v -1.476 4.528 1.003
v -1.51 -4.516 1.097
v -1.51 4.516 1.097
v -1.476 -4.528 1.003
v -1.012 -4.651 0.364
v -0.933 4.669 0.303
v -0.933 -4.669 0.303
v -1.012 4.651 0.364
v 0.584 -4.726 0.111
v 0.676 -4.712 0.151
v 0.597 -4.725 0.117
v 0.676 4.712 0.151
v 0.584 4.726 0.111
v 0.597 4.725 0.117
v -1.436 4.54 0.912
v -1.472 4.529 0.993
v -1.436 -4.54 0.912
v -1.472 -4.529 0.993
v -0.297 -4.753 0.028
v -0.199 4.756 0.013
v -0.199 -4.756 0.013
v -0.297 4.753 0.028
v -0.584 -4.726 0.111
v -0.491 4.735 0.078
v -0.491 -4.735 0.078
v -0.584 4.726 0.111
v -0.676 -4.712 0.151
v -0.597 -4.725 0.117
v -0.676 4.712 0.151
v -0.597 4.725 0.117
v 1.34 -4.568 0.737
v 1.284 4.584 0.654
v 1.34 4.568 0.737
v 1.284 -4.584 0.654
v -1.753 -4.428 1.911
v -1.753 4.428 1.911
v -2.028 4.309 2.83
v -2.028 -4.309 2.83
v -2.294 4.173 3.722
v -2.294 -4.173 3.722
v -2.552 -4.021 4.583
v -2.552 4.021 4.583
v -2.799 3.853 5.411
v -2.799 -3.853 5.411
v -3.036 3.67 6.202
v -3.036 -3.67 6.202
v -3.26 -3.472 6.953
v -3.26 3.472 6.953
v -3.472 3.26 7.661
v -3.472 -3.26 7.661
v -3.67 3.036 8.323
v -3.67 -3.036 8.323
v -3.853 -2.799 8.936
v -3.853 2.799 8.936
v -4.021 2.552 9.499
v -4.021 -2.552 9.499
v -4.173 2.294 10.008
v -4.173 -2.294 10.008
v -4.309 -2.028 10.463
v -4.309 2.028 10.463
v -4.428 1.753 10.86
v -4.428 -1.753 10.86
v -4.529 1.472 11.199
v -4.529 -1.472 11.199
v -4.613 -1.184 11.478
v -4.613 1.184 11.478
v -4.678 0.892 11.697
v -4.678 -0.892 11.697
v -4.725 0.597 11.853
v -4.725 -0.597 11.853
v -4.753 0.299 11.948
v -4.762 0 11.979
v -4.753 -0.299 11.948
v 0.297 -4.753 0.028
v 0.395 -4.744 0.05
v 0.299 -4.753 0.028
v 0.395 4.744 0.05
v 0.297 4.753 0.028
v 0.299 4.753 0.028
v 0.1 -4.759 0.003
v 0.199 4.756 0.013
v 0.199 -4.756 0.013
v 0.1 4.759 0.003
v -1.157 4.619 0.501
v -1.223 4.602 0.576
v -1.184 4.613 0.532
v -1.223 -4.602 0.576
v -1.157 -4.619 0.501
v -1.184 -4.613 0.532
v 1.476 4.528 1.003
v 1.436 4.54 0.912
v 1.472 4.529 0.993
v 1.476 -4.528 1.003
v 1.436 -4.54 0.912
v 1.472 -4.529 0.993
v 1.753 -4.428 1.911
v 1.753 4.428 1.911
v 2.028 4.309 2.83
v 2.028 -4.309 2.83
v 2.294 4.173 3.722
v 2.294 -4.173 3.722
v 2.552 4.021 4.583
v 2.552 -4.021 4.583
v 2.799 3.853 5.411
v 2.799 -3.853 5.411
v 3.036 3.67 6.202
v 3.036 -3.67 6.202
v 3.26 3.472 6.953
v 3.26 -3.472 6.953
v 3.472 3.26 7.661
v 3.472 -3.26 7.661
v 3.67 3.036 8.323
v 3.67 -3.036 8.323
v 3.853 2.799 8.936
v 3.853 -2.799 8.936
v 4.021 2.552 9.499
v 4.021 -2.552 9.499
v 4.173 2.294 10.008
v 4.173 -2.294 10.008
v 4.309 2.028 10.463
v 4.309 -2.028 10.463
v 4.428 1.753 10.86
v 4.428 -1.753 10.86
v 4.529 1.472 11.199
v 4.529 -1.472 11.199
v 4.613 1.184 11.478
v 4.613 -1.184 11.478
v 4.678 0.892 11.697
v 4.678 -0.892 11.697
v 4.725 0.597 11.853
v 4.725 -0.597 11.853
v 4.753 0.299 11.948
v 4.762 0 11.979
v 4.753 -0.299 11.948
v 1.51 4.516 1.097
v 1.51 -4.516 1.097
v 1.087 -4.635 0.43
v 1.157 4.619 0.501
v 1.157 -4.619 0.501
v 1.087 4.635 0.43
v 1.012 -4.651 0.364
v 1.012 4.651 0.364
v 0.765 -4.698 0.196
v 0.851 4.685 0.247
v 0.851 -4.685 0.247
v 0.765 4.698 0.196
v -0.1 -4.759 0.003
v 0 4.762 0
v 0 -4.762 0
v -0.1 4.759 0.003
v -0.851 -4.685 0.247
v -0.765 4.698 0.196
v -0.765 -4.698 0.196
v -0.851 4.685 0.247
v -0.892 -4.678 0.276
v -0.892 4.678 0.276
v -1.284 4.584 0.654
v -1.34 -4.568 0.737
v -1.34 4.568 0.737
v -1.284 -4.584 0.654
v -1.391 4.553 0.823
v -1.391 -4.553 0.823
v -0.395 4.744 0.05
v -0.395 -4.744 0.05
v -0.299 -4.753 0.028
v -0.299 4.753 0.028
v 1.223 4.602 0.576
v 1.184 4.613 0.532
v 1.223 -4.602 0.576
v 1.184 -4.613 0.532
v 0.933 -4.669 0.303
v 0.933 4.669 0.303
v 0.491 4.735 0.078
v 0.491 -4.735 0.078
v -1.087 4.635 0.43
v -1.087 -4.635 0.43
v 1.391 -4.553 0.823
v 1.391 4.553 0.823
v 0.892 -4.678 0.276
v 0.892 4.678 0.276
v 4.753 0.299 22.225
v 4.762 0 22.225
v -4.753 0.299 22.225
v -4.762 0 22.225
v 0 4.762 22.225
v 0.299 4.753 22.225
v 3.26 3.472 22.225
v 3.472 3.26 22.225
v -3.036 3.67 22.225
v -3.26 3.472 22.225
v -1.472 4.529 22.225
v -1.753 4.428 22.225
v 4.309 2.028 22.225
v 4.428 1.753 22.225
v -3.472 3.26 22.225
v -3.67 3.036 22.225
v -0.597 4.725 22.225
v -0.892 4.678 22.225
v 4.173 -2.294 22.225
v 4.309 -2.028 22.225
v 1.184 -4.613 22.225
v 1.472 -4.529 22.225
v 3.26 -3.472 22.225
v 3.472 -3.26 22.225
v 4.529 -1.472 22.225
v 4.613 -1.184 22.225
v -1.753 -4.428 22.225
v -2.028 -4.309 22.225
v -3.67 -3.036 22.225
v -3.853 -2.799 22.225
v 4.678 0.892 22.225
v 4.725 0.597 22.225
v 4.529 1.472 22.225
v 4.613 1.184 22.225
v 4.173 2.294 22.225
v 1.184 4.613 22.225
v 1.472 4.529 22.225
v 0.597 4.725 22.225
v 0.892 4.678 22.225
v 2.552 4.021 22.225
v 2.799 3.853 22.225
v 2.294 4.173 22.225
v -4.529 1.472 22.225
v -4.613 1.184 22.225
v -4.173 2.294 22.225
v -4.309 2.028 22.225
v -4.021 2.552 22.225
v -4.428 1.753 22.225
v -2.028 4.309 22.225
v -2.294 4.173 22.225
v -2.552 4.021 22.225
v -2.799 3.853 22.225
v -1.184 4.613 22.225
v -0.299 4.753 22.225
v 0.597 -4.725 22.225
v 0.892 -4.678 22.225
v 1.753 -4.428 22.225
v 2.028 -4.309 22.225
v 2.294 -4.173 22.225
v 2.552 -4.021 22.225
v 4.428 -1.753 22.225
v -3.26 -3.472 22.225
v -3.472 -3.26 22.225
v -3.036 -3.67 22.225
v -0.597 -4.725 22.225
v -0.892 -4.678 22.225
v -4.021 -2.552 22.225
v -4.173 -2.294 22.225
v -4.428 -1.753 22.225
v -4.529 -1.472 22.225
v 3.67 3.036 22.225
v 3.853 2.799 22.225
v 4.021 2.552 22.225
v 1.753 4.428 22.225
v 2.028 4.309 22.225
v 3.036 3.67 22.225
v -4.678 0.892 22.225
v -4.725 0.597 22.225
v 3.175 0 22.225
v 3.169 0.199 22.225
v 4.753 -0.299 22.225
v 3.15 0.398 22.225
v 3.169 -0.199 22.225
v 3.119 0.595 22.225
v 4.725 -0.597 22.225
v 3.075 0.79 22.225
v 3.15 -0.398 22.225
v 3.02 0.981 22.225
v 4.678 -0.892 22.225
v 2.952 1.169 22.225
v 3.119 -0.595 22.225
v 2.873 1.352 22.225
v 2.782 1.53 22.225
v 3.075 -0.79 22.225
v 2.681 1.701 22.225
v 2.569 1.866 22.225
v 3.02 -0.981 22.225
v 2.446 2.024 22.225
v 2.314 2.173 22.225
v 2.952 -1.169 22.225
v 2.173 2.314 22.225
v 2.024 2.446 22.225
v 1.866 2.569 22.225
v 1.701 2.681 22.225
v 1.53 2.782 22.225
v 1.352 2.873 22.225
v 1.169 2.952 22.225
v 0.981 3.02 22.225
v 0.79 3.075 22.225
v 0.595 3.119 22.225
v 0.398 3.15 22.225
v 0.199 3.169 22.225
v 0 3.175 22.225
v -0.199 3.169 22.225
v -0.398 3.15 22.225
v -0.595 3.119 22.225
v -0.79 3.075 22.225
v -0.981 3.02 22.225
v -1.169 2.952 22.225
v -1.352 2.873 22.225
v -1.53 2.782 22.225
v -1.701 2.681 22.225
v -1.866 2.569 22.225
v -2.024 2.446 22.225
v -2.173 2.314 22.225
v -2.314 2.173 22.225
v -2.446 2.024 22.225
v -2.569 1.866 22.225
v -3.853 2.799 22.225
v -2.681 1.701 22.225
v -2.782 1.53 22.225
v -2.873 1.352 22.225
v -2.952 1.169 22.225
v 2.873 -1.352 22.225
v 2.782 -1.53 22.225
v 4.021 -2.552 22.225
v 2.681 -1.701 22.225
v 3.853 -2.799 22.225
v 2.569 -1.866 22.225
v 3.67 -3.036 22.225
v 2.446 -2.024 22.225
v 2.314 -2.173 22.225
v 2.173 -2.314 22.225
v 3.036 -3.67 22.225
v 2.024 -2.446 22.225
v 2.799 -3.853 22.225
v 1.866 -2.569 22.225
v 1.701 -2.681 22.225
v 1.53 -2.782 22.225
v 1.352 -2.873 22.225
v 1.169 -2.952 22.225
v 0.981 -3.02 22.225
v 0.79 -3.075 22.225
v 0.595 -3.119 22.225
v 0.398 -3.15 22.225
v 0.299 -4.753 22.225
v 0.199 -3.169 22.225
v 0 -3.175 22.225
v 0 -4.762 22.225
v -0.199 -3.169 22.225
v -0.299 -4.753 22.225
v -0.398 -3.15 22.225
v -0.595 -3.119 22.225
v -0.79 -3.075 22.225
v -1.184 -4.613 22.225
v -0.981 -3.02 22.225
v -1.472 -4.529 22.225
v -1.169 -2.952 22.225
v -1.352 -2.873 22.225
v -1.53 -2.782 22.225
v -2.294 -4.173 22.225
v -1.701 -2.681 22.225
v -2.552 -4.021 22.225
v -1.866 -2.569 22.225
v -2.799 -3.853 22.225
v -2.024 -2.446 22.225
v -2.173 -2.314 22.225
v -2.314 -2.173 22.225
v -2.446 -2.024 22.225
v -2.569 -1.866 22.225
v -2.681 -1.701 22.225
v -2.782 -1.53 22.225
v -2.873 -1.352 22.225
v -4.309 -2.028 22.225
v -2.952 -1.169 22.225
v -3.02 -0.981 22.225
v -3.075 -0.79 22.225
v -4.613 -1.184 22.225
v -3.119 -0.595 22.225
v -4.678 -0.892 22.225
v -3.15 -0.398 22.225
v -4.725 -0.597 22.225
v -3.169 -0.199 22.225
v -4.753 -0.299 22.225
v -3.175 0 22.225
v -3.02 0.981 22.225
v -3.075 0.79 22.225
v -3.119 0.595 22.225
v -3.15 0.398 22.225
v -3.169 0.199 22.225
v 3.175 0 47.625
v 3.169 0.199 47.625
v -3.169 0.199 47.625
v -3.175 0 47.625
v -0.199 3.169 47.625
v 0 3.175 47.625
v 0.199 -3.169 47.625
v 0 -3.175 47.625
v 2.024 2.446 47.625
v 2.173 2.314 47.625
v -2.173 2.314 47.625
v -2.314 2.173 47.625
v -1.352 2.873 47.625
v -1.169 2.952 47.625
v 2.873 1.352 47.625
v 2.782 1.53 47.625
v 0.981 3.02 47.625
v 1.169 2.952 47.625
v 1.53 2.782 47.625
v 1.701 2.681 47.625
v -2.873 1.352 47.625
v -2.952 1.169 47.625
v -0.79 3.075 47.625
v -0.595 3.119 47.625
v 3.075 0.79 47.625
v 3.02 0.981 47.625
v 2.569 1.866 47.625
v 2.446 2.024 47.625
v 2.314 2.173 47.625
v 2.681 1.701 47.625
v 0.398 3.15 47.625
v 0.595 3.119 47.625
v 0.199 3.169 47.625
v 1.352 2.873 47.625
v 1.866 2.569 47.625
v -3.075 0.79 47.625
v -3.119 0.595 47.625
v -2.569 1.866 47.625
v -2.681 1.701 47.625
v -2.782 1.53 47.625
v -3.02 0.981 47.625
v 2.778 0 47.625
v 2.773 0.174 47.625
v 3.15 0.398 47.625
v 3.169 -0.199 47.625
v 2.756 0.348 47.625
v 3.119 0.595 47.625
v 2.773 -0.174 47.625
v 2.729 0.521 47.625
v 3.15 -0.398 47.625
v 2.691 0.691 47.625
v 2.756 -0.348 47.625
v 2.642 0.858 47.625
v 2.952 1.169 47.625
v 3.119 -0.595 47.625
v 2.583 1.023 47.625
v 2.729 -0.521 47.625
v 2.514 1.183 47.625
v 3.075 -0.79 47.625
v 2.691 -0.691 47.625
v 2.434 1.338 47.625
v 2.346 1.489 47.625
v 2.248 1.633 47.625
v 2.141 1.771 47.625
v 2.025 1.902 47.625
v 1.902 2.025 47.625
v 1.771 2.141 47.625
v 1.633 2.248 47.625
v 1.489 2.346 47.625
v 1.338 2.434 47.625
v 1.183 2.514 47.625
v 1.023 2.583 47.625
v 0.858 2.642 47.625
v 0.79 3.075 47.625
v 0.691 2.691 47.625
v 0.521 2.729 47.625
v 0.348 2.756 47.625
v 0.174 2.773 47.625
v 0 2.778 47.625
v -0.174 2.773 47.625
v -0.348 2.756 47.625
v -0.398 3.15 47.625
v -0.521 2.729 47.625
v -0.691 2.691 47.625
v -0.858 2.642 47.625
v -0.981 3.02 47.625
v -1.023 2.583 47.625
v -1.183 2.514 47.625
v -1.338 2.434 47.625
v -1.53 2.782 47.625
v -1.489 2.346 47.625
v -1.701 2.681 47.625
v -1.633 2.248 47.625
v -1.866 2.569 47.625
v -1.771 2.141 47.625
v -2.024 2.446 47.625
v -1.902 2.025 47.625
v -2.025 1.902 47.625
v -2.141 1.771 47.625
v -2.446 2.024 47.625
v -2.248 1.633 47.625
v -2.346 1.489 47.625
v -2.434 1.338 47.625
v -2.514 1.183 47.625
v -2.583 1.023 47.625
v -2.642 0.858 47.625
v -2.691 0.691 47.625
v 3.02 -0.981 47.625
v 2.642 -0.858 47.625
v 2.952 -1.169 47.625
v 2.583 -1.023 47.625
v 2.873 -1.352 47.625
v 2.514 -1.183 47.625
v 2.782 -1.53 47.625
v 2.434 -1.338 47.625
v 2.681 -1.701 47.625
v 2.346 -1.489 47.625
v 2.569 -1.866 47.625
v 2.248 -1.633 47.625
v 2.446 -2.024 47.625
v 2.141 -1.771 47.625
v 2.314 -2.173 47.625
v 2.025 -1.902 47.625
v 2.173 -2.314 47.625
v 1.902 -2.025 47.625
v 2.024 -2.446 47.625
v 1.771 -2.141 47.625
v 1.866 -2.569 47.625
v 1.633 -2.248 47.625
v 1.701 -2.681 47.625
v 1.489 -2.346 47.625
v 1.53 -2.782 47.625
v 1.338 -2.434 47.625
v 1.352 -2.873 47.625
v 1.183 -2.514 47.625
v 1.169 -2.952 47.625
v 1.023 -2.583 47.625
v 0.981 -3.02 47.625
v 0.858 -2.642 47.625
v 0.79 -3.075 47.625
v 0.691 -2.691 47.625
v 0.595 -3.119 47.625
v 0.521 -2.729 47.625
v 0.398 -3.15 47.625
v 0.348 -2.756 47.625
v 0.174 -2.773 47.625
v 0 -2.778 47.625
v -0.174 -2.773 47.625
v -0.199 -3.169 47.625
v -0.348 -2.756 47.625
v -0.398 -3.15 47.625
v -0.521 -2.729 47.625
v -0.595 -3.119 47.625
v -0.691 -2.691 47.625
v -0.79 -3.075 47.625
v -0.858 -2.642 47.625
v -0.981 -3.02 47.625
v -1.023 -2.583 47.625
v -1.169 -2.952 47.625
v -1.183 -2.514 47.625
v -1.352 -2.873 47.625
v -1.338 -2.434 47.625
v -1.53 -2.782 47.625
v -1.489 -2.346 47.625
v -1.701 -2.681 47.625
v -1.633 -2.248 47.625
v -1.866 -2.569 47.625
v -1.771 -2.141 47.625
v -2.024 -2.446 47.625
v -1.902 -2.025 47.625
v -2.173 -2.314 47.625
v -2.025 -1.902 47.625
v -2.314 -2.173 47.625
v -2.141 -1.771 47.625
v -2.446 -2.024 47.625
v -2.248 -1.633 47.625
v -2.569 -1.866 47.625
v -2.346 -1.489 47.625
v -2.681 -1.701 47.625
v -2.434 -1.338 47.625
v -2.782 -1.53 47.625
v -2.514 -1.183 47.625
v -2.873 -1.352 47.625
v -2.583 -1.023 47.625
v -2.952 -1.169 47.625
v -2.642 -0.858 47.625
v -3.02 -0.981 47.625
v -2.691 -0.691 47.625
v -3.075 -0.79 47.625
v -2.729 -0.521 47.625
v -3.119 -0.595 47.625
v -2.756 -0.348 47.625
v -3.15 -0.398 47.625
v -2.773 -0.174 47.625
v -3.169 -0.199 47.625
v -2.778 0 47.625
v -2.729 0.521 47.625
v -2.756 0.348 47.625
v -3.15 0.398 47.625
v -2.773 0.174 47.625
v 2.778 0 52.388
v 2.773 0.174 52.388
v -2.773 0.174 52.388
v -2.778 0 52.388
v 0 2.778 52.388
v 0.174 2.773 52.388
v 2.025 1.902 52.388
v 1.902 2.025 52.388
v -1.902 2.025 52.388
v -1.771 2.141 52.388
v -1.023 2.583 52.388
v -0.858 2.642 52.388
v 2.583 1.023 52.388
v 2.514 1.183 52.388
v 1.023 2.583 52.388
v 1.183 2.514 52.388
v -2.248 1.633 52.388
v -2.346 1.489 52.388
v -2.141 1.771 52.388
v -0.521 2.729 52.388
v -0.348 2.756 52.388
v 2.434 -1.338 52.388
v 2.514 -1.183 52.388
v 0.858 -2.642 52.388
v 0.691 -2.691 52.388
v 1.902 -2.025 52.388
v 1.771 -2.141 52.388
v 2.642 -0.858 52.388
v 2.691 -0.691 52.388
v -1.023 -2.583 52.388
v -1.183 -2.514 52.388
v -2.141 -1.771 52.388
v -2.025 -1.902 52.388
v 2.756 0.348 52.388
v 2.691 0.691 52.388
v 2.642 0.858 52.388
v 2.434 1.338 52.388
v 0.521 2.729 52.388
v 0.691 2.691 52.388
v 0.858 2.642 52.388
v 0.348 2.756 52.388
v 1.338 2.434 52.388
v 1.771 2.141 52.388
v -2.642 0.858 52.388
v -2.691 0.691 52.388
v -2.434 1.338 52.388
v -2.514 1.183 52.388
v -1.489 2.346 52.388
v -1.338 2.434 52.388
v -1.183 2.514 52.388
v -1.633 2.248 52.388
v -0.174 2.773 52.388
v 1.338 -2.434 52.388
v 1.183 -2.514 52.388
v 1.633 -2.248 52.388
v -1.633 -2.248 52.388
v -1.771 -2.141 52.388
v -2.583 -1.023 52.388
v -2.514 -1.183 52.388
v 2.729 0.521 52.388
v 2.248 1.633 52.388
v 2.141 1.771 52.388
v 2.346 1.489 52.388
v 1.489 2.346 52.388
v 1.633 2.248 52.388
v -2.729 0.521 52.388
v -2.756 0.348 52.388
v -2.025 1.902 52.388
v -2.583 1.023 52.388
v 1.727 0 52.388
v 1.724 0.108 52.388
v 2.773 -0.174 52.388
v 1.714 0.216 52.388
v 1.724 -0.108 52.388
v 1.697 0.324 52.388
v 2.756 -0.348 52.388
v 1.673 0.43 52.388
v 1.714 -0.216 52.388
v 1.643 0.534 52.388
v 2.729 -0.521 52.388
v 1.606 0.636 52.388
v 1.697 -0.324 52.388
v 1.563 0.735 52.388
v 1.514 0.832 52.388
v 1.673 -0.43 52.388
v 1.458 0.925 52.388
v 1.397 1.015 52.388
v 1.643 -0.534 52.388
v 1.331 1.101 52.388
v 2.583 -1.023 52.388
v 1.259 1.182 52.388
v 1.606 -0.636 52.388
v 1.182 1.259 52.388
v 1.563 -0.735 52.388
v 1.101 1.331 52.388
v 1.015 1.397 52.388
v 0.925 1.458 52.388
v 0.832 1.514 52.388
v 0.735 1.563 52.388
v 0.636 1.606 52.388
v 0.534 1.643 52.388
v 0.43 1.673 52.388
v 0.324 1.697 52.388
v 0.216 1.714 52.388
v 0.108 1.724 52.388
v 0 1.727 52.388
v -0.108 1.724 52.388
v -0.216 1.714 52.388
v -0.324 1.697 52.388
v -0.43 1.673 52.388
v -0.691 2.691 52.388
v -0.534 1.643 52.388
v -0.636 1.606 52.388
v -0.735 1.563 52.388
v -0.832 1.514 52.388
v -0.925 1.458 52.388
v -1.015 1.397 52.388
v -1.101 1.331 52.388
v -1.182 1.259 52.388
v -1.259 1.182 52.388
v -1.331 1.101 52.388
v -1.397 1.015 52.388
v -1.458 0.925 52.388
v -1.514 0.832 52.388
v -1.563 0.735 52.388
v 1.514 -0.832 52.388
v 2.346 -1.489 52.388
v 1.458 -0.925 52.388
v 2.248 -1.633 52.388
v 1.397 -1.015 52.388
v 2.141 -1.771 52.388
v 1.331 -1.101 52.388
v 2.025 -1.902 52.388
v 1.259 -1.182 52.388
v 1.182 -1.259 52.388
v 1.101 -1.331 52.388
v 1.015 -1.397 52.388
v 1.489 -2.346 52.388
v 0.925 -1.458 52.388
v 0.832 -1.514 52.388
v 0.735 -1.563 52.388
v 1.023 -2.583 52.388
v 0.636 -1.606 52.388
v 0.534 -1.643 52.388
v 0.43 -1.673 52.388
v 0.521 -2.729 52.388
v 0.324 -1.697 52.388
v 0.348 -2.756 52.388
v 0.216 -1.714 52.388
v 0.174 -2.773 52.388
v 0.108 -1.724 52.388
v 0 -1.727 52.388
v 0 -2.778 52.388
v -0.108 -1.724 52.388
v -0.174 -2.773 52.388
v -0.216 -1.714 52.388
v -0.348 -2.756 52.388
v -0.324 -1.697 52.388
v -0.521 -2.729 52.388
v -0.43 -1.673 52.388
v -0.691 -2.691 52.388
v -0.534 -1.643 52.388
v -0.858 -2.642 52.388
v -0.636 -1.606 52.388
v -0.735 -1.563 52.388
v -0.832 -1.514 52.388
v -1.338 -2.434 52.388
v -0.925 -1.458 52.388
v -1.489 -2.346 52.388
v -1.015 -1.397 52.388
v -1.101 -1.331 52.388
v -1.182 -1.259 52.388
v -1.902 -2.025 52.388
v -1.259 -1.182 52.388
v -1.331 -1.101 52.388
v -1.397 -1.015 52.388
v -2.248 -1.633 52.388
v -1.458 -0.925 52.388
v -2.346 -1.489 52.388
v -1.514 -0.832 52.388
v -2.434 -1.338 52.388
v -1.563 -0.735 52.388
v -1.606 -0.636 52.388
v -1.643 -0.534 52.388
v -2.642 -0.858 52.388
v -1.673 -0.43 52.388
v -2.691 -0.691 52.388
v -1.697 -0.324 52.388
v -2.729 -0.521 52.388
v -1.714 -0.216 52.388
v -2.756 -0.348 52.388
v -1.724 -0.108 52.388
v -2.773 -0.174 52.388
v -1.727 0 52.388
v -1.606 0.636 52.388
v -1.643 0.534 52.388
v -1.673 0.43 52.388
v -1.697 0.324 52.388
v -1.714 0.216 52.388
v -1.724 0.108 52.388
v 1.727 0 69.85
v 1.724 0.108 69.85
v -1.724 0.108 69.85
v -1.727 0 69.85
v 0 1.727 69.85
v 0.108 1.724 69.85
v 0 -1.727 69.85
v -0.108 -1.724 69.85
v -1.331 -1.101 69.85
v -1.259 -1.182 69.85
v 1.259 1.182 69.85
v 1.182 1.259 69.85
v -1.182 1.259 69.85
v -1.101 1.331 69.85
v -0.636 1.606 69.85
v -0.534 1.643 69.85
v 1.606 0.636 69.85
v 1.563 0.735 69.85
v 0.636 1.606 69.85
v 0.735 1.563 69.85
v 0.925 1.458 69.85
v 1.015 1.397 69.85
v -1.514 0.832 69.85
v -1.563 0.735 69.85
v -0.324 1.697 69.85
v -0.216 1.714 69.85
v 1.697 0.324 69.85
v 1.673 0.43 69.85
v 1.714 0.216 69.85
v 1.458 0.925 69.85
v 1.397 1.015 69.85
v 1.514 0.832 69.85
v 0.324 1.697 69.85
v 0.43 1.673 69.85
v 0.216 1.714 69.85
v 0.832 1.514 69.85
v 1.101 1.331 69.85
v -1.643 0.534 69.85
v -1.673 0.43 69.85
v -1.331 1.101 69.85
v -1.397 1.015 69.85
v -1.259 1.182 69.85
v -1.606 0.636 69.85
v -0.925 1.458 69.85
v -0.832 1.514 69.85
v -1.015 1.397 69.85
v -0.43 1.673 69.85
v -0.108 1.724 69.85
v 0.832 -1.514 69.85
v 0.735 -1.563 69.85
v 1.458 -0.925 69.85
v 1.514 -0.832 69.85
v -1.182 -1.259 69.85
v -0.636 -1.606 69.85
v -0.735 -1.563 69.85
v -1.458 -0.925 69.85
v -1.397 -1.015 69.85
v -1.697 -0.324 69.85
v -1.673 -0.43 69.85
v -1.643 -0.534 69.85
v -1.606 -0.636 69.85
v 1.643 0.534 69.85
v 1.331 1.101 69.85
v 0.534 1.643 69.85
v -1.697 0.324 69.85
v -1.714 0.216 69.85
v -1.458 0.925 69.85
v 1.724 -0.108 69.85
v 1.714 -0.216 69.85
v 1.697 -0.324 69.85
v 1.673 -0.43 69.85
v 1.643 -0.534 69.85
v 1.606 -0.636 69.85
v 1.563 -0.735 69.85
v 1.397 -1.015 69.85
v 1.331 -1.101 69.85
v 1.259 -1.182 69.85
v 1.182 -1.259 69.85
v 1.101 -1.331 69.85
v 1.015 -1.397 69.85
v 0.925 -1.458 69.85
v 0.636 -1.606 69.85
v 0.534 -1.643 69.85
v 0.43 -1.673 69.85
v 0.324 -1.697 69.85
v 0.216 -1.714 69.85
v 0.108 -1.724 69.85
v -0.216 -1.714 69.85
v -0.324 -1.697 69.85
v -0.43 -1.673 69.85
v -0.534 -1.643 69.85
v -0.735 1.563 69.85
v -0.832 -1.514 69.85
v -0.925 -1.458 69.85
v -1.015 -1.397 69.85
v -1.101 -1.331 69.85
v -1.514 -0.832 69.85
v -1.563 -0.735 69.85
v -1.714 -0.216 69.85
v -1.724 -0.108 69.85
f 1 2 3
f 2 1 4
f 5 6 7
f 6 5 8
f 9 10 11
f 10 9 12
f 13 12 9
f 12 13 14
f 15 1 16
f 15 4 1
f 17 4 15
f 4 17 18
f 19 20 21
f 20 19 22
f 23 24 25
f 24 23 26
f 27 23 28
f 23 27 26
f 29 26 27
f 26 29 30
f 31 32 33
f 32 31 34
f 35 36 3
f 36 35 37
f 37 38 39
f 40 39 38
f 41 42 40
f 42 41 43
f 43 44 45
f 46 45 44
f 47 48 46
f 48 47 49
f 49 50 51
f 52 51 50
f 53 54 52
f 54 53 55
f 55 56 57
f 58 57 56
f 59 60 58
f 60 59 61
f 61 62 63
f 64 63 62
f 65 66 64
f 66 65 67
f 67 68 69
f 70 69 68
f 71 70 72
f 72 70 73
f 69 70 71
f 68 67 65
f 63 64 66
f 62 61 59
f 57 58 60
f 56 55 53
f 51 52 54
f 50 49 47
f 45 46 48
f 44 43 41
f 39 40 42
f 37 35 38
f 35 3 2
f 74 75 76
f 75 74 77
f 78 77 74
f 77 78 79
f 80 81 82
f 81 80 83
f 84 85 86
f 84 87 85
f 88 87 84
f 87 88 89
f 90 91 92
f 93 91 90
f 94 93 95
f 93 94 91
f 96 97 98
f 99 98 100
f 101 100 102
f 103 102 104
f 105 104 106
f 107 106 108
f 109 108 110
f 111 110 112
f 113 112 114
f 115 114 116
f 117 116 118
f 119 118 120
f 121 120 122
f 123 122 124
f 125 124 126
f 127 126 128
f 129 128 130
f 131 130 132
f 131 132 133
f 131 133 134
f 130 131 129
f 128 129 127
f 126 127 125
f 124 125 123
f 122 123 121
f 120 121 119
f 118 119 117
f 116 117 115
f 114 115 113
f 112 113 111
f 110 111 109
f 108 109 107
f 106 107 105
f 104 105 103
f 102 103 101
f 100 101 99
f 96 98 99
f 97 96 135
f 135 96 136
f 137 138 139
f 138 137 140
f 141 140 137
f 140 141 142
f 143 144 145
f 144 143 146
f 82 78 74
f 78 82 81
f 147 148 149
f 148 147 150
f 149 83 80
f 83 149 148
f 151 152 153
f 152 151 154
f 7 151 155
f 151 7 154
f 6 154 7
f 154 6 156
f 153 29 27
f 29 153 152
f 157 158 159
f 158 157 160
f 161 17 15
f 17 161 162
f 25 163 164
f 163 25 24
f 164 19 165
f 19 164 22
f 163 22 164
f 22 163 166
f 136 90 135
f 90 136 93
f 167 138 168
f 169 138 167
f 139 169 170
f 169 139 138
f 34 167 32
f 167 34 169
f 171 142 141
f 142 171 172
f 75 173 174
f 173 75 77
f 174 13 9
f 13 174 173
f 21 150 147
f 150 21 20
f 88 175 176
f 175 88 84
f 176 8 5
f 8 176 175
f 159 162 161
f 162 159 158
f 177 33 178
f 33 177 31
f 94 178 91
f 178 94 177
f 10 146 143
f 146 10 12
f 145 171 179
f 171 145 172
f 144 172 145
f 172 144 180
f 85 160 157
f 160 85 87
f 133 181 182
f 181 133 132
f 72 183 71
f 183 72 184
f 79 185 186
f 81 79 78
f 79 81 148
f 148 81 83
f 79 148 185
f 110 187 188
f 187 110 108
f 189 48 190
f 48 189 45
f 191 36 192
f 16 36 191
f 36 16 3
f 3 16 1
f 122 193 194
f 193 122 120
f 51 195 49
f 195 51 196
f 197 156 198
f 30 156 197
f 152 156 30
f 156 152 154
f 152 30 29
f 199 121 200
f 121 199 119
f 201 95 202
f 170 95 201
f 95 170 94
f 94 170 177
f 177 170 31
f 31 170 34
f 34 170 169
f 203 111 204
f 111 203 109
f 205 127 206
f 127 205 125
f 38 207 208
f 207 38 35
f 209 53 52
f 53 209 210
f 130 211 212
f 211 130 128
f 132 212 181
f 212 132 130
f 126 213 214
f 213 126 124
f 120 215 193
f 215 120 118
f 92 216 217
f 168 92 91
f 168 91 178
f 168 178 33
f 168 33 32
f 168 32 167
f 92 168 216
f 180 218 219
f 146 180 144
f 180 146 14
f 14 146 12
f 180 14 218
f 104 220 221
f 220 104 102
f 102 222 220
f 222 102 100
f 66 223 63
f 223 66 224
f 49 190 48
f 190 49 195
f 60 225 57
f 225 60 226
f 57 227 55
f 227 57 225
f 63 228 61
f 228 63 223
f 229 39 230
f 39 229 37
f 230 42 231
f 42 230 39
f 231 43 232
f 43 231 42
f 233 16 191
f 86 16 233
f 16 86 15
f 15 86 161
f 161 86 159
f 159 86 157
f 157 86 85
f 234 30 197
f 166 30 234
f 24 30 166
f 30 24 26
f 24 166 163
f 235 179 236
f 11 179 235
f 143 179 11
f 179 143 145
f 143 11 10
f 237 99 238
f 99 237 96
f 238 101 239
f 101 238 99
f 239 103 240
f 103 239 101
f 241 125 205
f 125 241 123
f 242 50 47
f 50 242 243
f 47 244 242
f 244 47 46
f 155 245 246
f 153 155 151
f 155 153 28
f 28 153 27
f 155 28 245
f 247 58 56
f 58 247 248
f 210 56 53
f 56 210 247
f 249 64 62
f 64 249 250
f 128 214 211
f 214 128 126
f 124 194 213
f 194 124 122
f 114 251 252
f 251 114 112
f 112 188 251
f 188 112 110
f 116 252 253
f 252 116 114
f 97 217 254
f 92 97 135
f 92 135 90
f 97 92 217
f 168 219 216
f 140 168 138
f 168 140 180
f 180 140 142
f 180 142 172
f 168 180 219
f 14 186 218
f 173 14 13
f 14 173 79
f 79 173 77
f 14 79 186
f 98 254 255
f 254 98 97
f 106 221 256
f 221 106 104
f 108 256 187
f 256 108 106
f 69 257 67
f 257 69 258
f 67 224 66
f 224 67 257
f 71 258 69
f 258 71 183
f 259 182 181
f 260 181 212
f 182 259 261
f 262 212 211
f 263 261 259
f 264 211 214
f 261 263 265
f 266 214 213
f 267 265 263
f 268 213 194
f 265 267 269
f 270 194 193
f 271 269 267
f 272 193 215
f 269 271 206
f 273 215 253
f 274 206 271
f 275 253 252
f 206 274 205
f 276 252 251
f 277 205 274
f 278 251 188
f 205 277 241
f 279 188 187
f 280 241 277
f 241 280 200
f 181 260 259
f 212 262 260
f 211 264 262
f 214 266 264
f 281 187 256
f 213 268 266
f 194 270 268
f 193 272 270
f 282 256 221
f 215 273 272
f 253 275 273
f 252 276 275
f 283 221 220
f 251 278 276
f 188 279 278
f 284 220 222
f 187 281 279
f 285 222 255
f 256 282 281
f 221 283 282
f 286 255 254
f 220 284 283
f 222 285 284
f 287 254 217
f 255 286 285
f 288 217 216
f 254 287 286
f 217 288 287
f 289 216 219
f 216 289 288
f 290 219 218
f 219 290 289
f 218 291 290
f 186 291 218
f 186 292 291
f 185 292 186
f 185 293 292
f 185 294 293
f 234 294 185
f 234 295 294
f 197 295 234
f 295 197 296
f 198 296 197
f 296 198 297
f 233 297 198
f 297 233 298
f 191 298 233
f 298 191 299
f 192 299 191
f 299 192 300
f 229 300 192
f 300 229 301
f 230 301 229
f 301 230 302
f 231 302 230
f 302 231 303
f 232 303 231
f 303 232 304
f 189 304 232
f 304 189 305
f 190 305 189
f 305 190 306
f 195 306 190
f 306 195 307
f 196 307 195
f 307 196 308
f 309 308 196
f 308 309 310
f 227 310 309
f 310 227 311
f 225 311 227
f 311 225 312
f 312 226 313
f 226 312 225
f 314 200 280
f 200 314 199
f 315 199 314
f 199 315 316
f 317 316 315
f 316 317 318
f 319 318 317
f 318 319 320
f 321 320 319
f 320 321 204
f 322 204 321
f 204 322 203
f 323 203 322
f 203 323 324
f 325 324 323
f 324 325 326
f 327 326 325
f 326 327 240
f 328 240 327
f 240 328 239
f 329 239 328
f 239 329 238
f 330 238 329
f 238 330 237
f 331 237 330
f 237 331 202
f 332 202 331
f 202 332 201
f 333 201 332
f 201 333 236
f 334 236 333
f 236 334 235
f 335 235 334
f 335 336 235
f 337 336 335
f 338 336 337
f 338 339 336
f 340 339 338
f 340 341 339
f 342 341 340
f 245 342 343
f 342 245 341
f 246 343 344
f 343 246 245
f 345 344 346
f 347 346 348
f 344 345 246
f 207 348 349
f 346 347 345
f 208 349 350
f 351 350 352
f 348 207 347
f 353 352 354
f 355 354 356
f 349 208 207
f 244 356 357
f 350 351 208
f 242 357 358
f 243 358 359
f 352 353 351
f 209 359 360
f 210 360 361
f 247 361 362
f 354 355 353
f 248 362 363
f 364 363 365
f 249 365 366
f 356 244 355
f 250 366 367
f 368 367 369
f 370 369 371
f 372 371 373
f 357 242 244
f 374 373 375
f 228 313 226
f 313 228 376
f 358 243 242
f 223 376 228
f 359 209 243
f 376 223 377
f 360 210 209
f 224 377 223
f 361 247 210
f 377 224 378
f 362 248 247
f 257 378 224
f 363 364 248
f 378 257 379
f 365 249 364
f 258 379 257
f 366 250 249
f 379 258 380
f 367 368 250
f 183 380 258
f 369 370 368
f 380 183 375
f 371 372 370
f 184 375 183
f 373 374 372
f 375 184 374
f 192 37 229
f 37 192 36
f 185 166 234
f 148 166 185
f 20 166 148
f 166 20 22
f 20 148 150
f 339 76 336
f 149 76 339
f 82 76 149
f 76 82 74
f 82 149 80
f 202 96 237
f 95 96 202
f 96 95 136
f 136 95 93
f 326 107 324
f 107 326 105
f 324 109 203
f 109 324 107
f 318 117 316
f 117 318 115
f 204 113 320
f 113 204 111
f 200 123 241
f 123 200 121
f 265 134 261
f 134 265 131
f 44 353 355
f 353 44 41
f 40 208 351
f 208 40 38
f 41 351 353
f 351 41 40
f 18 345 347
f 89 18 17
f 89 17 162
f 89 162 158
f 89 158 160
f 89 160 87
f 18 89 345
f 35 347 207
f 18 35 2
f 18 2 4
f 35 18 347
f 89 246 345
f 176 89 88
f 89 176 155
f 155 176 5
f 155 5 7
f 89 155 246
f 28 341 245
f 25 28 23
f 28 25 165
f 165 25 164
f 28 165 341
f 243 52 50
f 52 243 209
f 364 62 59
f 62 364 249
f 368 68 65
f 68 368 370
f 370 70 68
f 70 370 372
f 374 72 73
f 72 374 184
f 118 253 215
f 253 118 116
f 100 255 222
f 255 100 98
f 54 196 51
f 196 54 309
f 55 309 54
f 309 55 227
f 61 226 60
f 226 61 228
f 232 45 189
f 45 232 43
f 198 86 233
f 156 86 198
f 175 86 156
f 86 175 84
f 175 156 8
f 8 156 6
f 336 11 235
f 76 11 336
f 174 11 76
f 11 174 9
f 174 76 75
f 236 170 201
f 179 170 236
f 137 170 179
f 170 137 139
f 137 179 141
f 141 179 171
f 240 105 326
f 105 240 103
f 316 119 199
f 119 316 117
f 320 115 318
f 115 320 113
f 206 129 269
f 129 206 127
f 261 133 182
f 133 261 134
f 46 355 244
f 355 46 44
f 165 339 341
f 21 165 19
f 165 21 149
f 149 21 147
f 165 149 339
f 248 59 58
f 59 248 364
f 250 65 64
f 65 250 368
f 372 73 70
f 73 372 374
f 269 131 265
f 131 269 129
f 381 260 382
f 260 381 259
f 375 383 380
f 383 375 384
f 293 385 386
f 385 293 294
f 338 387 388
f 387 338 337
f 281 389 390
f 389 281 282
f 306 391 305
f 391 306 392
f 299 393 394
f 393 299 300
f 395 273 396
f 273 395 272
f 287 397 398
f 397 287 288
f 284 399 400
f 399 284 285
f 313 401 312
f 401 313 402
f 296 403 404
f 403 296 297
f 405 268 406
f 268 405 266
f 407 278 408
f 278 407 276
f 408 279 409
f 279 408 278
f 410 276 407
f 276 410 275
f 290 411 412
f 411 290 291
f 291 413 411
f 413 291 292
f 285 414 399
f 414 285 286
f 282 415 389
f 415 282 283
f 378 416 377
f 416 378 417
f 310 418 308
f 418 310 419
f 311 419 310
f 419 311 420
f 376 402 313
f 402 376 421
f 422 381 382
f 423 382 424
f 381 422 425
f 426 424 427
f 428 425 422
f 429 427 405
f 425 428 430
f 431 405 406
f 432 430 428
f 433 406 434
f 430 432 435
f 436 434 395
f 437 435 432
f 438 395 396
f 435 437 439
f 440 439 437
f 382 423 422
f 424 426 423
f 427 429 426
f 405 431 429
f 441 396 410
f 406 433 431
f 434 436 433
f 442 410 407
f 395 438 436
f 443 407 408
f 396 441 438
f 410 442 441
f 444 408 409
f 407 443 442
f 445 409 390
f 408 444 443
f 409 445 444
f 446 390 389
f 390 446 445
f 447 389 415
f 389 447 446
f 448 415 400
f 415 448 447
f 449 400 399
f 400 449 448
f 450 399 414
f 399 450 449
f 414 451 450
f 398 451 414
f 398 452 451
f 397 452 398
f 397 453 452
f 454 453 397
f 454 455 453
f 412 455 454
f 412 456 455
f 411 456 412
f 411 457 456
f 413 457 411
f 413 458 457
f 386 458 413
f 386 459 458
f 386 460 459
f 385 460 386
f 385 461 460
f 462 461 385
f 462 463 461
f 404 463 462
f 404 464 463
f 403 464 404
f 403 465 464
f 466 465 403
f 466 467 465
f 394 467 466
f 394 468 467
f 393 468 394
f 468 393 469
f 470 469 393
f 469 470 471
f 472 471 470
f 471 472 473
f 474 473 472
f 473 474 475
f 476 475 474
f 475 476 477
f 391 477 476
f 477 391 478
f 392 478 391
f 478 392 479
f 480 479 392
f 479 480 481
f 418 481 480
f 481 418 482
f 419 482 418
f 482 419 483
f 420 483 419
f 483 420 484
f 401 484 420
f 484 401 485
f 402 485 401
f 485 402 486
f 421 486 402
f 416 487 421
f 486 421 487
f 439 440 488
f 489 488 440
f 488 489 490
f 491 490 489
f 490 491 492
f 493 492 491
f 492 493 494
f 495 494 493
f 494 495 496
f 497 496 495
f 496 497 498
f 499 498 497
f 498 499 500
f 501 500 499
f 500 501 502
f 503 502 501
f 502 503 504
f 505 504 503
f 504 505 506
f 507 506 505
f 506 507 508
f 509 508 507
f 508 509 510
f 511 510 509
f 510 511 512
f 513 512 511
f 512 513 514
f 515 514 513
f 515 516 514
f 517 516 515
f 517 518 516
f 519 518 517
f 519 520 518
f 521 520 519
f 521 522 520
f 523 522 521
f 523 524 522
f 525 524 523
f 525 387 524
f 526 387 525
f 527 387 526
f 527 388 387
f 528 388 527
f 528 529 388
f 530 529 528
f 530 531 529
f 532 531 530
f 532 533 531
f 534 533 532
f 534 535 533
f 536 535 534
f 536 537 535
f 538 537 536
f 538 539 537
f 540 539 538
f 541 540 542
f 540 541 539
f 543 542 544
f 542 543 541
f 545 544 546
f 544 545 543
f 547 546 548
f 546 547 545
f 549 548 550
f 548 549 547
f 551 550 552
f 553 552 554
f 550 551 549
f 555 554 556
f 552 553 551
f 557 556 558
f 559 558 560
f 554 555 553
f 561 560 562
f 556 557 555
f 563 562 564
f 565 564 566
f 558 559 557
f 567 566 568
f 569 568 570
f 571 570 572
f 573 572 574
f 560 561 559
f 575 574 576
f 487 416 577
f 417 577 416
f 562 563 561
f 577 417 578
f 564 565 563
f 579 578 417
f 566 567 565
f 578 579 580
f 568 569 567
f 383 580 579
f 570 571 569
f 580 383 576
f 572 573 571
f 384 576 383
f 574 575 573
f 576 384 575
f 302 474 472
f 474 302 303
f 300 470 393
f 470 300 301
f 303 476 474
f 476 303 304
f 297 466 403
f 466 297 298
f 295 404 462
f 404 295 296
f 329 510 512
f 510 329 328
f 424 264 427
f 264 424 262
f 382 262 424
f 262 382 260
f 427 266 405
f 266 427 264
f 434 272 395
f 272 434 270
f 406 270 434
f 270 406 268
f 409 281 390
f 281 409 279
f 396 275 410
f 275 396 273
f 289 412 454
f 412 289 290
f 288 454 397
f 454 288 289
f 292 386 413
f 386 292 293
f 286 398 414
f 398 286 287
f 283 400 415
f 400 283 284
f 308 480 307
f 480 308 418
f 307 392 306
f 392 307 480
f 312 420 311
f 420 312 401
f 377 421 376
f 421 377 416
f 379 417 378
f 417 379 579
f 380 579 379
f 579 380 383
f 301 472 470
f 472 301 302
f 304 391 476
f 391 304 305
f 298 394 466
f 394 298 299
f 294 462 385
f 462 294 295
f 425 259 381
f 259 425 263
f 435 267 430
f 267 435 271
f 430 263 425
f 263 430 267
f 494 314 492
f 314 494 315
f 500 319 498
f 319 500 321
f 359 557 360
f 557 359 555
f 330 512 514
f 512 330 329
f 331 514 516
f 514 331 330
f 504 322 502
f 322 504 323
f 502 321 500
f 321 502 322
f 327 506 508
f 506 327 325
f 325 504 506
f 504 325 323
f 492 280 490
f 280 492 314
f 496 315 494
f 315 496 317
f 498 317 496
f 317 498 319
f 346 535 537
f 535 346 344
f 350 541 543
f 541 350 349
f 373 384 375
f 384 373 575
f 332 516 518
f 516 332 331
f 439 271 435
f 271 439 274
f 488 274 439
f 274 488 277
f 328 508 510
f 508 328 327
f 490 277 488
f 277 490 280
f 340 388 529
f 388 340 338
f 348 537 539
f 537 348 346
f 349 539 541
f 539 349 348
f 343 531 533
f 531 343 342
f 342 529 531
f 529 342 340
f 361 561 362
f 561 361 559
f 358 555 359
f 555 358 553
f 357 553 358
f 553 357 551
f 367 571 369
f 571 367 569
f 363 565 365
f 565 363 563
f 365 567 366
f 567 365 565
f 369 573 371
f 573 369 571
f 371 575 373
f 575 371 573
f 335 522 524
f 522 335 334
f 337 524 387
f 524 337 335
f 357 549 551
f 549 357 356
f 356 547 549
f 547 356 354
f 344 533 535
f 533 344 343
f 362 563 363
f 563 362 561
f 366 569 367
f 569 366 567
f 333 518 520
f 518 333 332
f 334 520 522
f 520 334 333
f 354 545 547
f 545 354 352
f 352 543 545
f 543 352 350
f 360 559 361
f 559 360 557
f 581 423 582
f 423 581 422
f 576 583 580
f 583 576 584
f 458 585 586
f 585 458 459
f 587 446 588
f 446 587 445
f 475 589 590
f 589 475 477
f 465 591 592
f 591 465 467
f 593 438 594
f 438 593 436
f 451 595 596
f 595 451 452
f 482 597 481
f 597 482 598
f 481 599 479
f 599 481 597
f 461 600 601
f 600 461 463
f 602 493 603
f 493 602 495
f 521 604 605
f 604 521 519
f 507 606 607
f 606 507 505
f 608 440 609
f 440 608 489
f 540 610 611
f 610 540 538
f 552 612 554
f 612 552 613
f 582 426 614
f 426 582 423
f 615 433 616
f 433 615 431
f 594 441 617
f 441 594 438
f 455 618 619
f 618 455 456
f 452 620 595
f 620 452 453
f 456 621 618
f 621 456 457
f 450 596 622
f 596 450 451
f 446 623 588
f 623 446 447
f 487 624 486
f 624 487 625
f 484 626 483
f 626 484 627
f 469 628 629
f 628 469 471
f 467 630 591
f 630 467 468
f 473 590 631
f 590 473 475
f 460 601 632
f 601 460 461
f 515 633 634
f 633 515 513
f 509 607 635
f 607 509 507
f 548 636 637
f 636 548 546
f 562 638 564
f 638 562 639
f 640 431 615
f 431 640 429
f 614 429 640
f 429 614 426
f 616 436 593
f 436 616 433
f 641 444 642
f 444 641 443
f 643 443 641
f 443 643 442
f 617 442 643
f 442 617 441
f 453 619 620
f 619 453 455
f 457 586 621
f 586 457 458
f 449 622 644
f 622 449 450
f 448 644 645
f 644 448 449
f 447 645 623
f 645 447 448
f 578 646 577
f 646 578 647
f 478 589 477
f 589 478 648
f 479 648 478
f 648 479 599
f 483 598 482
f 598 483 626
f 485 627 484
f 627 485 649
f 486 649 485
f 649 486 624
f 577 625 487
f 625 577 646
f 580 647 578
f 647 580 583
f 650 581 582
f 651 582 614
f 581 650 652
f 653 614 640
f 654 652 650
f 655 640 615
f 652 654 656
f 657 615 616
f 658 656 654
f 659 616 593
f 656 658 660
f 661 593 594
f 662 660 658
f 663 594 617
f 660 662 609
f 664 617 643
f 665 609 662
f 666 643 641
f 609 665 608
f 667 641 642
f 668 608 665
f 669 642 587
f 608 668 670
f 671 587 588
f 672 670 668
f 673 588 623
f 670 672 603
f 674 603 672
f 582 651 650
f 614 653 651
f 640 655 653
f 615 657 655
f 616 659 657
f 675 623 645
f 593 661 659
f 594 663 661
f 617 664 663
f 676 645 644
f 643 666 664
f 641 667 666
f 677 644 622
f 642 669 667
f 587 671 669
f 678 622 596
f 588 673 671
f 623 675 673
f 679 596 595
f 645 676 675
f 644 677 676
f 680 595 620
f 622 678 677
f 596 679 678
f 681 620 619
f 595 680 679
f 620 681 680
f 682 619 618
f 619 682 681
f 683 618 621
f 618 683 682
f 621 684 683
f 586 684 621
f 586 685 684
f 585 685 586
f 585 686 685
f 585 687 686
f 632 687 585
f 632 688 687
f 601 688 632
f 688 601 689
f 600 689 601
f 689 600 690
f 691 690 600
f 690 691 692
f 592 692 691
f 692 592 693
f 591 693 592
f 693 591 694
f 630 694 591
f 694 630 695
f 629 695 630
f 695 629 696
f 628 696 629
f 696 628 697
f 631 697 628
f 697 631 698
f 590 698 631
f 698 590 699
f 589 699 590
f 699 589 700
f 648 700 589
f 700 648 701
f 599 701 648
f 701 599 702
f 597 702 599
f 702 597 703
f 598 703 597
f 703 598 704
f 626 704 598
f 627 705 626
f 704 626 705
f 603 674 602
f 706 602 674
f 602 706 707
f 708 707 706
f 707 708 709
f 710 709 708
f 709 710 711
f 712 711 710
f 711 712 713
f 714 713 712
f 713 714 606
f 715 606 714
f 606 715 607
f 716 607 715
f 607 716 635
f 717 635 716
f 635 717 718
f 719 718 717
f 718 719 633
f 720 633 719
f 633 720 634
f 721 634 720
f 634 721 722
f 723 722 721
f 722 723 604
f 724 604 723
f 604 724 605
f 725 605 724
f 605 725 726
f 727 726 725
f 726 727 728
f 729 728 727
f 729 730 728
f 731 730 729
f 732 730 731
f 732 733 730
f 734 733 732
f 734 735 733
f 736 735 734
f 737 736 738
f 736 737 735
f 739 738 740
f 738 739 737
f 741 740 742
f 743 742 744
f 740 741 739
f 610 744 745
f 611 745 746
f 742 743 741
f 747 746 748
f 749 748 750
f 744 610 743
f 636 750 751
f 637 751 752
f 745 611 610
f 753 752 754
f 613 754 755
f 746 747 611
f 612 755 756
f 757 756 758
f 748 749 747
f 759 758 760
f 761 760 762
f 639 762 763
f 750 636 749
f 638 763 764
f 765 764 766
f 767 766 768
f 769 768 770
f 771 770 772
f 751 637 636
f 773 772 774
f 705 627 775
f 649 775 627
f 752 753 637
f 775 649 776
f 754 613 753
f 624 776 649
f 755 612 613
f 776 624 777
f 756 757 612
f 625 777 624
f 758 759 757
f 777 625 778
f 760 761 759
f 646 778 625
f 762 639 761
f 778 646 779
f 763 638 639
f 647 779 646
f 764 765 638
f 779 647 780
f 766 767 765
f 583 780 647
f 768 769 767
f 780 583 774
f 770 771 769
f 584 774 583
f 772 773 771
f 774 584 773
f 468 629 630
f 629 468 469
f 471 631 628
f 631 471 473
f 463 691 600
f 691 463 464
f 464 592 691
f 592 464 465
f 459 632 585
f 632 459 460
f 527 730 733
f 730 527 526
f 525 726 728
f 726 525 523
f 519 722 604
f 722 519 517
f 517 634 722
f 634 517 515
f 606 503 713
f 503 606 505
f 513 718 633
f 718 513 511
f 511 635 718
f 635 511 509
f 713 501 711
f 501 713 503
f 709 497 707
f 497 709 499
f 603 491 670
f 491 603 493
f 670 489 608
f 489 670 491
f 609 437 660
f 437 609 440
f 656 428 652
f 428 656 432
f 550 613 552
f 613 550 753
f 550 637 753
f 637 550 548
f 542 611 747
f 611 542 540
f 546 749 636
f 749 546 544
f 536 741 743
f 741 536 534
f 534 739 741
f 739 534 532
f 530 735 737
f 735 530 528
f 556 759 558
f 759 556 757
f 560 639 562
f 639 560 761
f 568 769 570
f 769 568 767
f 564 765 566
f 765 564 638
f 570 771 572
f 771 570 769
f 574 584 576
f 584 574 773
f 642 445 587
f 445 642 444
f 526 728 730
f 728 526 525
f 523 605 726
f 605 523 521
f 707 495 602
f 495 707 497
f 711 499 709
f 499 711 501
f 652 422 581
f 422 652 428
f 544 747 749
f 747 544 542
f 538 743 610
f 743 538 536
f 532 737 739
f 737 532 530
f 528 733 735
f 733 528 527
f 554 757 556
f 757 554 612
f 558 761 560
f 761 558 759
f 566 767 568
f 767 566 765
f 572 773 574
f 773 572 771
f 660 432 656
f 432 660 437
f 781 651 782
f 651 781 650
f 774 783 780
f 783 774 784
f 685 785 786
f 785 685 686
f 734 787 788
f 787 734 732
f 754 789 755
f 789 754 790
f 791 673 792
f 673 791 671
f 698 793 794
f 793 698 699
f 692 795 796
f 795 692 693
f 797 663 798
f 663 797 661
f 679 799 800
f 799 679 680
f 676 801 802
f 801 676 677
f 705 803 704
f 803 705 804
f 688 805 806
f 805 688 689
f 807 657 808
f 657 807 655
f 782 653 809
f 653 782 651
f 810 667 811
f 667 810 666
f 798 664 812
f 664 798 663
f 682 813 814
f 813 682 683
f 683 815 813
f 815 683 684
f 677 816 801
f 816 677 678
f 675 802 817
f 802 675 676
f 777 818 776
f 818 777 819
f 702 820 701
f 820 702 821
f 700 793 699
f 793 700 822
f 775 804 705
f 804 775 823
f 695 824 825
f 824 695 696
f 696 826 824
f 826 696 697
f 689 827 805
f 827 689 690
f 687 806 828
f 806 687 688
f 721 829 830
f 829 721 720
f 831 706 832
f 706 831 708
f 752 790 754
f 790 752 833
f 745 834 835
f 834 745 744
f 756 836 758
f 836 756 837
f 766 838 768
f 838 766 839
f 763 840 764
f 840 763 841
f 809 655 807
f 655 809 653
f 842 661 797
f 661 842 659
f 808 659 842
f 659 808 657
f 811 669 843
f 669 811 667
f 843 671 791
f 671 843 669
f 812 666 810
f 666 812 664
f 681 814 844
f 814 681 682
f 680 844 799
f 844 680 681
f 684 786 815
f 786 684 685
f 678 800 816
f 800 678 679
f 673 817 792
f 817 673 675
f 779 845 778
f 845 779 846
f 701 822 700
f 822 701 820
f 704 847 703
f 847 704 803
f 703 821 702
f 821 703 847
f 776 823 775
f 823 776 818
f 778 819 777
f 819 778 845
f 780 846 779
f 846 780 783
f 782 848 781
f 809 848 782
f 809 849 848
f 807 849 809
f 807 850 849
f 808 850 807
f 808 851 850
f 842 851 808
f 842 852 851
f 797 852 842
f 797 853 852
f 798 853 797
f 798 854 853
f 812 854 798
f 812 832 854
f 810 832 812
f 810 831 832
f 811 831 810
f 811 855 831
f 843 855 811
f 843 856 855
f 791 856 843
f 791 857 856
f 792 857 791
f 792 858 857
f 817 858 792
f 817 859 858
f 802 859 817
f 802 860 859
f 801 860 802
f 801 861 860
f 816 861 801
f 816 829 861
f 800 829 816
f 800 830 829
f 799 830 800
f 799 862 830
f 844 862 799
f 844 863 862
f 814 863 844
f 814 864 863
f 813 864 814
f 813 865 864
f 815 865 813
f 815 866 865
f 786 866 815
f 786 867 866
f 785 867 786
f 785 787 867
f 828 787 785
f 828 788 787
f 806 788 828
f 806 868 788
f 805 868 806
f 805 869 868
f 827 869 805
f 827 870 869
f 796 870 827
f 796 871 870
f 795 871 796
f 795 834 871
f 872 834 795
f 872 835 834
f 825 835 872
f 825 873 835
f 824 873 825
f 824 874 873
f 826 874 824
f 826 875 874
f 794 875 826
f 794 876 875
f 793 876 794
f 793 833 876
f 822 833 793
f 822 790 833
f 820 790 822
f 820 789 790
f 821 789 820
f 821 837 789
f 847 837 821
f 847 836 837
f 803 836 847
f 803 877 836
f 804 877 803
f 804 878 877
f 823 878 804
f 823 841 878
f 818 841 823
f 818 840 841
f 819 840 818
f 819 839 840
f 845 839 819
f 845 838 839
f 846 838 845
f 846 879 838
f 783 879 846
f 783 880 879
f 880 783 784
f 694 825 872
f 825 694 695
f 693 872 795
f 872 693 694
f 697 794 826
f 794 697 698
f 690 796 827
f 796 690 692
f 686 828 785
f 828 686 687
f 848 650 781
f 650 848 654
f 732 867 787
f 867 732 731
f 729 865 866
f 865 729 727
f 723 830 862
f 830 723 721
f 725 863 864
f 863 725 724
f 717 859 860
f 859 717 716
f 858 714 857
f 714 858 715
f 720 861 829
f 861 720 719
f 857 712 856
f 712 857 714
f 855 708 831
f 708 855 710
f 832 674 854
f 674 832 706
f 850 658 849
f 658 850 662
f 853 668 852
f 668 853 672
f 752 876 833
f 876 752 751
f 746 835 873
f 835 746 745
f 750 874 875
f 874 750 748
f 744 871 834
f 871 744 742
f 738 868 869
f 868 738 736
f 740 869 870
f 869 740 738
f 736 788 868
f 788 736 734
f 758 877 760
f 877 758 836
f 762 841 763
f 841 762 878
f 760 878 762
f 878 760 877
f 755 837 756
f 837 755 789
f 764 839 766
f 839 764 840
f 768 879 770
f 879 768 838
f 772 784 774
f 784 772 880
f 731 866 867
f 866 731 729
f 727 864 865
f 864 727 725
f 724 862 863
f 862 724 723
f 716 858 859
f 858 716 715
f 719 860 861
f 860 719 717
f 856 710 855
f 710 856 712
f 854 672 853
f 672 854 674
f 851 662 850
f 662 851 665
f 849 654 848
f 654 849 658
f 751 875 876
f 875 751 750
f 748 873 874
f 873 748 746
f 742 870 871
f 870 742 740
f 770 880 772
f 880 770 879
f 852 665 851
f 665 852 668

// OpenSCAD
inch=25.4;

module index_pin(tipRadius=1/16*inch,
		 shoulderRadius=3/16*inch,
		 tipSection=[0.375, 14],
     sections=[[0.250, 16, 14],
	       [7/32 ,  3, 30],
	       [0.136, 11, 33]], $fn=100) {
     translate([0,0,tipSection[1]*inch/16])
     intersection() {
	  translate([0,0,-14/16*inch+tipRadius]) rotate([90,0,0]) hull($fn=100) {
	       cylinder(r=tipRadius, h=tipSection[0]*inch, center=true);
	       for(x=[-1,1]*tipSection[0]*inch/4) {
		    // Faking that 14.5 degree angle by moving back
		    // should do trig there.
		    translate([x,12/16*inch,0]) {
			 cylinder(r=shoulderRadius,
				  h=tipSection[0]*inch,
				  center=true);
		    }
	       }
	  }
	  translate([0,0,-14/16*inch/2]) cylinder(d=0.375*inch, h=14/16*inch, center=true);
     }
     for (section=sections) {
	  translate([0,0,section[2]*inch/16]) {
	       cylinder(d=section[0]*inch, h=section[1]*inch/16);
	  }
}
     
}
		 

index_pin();
